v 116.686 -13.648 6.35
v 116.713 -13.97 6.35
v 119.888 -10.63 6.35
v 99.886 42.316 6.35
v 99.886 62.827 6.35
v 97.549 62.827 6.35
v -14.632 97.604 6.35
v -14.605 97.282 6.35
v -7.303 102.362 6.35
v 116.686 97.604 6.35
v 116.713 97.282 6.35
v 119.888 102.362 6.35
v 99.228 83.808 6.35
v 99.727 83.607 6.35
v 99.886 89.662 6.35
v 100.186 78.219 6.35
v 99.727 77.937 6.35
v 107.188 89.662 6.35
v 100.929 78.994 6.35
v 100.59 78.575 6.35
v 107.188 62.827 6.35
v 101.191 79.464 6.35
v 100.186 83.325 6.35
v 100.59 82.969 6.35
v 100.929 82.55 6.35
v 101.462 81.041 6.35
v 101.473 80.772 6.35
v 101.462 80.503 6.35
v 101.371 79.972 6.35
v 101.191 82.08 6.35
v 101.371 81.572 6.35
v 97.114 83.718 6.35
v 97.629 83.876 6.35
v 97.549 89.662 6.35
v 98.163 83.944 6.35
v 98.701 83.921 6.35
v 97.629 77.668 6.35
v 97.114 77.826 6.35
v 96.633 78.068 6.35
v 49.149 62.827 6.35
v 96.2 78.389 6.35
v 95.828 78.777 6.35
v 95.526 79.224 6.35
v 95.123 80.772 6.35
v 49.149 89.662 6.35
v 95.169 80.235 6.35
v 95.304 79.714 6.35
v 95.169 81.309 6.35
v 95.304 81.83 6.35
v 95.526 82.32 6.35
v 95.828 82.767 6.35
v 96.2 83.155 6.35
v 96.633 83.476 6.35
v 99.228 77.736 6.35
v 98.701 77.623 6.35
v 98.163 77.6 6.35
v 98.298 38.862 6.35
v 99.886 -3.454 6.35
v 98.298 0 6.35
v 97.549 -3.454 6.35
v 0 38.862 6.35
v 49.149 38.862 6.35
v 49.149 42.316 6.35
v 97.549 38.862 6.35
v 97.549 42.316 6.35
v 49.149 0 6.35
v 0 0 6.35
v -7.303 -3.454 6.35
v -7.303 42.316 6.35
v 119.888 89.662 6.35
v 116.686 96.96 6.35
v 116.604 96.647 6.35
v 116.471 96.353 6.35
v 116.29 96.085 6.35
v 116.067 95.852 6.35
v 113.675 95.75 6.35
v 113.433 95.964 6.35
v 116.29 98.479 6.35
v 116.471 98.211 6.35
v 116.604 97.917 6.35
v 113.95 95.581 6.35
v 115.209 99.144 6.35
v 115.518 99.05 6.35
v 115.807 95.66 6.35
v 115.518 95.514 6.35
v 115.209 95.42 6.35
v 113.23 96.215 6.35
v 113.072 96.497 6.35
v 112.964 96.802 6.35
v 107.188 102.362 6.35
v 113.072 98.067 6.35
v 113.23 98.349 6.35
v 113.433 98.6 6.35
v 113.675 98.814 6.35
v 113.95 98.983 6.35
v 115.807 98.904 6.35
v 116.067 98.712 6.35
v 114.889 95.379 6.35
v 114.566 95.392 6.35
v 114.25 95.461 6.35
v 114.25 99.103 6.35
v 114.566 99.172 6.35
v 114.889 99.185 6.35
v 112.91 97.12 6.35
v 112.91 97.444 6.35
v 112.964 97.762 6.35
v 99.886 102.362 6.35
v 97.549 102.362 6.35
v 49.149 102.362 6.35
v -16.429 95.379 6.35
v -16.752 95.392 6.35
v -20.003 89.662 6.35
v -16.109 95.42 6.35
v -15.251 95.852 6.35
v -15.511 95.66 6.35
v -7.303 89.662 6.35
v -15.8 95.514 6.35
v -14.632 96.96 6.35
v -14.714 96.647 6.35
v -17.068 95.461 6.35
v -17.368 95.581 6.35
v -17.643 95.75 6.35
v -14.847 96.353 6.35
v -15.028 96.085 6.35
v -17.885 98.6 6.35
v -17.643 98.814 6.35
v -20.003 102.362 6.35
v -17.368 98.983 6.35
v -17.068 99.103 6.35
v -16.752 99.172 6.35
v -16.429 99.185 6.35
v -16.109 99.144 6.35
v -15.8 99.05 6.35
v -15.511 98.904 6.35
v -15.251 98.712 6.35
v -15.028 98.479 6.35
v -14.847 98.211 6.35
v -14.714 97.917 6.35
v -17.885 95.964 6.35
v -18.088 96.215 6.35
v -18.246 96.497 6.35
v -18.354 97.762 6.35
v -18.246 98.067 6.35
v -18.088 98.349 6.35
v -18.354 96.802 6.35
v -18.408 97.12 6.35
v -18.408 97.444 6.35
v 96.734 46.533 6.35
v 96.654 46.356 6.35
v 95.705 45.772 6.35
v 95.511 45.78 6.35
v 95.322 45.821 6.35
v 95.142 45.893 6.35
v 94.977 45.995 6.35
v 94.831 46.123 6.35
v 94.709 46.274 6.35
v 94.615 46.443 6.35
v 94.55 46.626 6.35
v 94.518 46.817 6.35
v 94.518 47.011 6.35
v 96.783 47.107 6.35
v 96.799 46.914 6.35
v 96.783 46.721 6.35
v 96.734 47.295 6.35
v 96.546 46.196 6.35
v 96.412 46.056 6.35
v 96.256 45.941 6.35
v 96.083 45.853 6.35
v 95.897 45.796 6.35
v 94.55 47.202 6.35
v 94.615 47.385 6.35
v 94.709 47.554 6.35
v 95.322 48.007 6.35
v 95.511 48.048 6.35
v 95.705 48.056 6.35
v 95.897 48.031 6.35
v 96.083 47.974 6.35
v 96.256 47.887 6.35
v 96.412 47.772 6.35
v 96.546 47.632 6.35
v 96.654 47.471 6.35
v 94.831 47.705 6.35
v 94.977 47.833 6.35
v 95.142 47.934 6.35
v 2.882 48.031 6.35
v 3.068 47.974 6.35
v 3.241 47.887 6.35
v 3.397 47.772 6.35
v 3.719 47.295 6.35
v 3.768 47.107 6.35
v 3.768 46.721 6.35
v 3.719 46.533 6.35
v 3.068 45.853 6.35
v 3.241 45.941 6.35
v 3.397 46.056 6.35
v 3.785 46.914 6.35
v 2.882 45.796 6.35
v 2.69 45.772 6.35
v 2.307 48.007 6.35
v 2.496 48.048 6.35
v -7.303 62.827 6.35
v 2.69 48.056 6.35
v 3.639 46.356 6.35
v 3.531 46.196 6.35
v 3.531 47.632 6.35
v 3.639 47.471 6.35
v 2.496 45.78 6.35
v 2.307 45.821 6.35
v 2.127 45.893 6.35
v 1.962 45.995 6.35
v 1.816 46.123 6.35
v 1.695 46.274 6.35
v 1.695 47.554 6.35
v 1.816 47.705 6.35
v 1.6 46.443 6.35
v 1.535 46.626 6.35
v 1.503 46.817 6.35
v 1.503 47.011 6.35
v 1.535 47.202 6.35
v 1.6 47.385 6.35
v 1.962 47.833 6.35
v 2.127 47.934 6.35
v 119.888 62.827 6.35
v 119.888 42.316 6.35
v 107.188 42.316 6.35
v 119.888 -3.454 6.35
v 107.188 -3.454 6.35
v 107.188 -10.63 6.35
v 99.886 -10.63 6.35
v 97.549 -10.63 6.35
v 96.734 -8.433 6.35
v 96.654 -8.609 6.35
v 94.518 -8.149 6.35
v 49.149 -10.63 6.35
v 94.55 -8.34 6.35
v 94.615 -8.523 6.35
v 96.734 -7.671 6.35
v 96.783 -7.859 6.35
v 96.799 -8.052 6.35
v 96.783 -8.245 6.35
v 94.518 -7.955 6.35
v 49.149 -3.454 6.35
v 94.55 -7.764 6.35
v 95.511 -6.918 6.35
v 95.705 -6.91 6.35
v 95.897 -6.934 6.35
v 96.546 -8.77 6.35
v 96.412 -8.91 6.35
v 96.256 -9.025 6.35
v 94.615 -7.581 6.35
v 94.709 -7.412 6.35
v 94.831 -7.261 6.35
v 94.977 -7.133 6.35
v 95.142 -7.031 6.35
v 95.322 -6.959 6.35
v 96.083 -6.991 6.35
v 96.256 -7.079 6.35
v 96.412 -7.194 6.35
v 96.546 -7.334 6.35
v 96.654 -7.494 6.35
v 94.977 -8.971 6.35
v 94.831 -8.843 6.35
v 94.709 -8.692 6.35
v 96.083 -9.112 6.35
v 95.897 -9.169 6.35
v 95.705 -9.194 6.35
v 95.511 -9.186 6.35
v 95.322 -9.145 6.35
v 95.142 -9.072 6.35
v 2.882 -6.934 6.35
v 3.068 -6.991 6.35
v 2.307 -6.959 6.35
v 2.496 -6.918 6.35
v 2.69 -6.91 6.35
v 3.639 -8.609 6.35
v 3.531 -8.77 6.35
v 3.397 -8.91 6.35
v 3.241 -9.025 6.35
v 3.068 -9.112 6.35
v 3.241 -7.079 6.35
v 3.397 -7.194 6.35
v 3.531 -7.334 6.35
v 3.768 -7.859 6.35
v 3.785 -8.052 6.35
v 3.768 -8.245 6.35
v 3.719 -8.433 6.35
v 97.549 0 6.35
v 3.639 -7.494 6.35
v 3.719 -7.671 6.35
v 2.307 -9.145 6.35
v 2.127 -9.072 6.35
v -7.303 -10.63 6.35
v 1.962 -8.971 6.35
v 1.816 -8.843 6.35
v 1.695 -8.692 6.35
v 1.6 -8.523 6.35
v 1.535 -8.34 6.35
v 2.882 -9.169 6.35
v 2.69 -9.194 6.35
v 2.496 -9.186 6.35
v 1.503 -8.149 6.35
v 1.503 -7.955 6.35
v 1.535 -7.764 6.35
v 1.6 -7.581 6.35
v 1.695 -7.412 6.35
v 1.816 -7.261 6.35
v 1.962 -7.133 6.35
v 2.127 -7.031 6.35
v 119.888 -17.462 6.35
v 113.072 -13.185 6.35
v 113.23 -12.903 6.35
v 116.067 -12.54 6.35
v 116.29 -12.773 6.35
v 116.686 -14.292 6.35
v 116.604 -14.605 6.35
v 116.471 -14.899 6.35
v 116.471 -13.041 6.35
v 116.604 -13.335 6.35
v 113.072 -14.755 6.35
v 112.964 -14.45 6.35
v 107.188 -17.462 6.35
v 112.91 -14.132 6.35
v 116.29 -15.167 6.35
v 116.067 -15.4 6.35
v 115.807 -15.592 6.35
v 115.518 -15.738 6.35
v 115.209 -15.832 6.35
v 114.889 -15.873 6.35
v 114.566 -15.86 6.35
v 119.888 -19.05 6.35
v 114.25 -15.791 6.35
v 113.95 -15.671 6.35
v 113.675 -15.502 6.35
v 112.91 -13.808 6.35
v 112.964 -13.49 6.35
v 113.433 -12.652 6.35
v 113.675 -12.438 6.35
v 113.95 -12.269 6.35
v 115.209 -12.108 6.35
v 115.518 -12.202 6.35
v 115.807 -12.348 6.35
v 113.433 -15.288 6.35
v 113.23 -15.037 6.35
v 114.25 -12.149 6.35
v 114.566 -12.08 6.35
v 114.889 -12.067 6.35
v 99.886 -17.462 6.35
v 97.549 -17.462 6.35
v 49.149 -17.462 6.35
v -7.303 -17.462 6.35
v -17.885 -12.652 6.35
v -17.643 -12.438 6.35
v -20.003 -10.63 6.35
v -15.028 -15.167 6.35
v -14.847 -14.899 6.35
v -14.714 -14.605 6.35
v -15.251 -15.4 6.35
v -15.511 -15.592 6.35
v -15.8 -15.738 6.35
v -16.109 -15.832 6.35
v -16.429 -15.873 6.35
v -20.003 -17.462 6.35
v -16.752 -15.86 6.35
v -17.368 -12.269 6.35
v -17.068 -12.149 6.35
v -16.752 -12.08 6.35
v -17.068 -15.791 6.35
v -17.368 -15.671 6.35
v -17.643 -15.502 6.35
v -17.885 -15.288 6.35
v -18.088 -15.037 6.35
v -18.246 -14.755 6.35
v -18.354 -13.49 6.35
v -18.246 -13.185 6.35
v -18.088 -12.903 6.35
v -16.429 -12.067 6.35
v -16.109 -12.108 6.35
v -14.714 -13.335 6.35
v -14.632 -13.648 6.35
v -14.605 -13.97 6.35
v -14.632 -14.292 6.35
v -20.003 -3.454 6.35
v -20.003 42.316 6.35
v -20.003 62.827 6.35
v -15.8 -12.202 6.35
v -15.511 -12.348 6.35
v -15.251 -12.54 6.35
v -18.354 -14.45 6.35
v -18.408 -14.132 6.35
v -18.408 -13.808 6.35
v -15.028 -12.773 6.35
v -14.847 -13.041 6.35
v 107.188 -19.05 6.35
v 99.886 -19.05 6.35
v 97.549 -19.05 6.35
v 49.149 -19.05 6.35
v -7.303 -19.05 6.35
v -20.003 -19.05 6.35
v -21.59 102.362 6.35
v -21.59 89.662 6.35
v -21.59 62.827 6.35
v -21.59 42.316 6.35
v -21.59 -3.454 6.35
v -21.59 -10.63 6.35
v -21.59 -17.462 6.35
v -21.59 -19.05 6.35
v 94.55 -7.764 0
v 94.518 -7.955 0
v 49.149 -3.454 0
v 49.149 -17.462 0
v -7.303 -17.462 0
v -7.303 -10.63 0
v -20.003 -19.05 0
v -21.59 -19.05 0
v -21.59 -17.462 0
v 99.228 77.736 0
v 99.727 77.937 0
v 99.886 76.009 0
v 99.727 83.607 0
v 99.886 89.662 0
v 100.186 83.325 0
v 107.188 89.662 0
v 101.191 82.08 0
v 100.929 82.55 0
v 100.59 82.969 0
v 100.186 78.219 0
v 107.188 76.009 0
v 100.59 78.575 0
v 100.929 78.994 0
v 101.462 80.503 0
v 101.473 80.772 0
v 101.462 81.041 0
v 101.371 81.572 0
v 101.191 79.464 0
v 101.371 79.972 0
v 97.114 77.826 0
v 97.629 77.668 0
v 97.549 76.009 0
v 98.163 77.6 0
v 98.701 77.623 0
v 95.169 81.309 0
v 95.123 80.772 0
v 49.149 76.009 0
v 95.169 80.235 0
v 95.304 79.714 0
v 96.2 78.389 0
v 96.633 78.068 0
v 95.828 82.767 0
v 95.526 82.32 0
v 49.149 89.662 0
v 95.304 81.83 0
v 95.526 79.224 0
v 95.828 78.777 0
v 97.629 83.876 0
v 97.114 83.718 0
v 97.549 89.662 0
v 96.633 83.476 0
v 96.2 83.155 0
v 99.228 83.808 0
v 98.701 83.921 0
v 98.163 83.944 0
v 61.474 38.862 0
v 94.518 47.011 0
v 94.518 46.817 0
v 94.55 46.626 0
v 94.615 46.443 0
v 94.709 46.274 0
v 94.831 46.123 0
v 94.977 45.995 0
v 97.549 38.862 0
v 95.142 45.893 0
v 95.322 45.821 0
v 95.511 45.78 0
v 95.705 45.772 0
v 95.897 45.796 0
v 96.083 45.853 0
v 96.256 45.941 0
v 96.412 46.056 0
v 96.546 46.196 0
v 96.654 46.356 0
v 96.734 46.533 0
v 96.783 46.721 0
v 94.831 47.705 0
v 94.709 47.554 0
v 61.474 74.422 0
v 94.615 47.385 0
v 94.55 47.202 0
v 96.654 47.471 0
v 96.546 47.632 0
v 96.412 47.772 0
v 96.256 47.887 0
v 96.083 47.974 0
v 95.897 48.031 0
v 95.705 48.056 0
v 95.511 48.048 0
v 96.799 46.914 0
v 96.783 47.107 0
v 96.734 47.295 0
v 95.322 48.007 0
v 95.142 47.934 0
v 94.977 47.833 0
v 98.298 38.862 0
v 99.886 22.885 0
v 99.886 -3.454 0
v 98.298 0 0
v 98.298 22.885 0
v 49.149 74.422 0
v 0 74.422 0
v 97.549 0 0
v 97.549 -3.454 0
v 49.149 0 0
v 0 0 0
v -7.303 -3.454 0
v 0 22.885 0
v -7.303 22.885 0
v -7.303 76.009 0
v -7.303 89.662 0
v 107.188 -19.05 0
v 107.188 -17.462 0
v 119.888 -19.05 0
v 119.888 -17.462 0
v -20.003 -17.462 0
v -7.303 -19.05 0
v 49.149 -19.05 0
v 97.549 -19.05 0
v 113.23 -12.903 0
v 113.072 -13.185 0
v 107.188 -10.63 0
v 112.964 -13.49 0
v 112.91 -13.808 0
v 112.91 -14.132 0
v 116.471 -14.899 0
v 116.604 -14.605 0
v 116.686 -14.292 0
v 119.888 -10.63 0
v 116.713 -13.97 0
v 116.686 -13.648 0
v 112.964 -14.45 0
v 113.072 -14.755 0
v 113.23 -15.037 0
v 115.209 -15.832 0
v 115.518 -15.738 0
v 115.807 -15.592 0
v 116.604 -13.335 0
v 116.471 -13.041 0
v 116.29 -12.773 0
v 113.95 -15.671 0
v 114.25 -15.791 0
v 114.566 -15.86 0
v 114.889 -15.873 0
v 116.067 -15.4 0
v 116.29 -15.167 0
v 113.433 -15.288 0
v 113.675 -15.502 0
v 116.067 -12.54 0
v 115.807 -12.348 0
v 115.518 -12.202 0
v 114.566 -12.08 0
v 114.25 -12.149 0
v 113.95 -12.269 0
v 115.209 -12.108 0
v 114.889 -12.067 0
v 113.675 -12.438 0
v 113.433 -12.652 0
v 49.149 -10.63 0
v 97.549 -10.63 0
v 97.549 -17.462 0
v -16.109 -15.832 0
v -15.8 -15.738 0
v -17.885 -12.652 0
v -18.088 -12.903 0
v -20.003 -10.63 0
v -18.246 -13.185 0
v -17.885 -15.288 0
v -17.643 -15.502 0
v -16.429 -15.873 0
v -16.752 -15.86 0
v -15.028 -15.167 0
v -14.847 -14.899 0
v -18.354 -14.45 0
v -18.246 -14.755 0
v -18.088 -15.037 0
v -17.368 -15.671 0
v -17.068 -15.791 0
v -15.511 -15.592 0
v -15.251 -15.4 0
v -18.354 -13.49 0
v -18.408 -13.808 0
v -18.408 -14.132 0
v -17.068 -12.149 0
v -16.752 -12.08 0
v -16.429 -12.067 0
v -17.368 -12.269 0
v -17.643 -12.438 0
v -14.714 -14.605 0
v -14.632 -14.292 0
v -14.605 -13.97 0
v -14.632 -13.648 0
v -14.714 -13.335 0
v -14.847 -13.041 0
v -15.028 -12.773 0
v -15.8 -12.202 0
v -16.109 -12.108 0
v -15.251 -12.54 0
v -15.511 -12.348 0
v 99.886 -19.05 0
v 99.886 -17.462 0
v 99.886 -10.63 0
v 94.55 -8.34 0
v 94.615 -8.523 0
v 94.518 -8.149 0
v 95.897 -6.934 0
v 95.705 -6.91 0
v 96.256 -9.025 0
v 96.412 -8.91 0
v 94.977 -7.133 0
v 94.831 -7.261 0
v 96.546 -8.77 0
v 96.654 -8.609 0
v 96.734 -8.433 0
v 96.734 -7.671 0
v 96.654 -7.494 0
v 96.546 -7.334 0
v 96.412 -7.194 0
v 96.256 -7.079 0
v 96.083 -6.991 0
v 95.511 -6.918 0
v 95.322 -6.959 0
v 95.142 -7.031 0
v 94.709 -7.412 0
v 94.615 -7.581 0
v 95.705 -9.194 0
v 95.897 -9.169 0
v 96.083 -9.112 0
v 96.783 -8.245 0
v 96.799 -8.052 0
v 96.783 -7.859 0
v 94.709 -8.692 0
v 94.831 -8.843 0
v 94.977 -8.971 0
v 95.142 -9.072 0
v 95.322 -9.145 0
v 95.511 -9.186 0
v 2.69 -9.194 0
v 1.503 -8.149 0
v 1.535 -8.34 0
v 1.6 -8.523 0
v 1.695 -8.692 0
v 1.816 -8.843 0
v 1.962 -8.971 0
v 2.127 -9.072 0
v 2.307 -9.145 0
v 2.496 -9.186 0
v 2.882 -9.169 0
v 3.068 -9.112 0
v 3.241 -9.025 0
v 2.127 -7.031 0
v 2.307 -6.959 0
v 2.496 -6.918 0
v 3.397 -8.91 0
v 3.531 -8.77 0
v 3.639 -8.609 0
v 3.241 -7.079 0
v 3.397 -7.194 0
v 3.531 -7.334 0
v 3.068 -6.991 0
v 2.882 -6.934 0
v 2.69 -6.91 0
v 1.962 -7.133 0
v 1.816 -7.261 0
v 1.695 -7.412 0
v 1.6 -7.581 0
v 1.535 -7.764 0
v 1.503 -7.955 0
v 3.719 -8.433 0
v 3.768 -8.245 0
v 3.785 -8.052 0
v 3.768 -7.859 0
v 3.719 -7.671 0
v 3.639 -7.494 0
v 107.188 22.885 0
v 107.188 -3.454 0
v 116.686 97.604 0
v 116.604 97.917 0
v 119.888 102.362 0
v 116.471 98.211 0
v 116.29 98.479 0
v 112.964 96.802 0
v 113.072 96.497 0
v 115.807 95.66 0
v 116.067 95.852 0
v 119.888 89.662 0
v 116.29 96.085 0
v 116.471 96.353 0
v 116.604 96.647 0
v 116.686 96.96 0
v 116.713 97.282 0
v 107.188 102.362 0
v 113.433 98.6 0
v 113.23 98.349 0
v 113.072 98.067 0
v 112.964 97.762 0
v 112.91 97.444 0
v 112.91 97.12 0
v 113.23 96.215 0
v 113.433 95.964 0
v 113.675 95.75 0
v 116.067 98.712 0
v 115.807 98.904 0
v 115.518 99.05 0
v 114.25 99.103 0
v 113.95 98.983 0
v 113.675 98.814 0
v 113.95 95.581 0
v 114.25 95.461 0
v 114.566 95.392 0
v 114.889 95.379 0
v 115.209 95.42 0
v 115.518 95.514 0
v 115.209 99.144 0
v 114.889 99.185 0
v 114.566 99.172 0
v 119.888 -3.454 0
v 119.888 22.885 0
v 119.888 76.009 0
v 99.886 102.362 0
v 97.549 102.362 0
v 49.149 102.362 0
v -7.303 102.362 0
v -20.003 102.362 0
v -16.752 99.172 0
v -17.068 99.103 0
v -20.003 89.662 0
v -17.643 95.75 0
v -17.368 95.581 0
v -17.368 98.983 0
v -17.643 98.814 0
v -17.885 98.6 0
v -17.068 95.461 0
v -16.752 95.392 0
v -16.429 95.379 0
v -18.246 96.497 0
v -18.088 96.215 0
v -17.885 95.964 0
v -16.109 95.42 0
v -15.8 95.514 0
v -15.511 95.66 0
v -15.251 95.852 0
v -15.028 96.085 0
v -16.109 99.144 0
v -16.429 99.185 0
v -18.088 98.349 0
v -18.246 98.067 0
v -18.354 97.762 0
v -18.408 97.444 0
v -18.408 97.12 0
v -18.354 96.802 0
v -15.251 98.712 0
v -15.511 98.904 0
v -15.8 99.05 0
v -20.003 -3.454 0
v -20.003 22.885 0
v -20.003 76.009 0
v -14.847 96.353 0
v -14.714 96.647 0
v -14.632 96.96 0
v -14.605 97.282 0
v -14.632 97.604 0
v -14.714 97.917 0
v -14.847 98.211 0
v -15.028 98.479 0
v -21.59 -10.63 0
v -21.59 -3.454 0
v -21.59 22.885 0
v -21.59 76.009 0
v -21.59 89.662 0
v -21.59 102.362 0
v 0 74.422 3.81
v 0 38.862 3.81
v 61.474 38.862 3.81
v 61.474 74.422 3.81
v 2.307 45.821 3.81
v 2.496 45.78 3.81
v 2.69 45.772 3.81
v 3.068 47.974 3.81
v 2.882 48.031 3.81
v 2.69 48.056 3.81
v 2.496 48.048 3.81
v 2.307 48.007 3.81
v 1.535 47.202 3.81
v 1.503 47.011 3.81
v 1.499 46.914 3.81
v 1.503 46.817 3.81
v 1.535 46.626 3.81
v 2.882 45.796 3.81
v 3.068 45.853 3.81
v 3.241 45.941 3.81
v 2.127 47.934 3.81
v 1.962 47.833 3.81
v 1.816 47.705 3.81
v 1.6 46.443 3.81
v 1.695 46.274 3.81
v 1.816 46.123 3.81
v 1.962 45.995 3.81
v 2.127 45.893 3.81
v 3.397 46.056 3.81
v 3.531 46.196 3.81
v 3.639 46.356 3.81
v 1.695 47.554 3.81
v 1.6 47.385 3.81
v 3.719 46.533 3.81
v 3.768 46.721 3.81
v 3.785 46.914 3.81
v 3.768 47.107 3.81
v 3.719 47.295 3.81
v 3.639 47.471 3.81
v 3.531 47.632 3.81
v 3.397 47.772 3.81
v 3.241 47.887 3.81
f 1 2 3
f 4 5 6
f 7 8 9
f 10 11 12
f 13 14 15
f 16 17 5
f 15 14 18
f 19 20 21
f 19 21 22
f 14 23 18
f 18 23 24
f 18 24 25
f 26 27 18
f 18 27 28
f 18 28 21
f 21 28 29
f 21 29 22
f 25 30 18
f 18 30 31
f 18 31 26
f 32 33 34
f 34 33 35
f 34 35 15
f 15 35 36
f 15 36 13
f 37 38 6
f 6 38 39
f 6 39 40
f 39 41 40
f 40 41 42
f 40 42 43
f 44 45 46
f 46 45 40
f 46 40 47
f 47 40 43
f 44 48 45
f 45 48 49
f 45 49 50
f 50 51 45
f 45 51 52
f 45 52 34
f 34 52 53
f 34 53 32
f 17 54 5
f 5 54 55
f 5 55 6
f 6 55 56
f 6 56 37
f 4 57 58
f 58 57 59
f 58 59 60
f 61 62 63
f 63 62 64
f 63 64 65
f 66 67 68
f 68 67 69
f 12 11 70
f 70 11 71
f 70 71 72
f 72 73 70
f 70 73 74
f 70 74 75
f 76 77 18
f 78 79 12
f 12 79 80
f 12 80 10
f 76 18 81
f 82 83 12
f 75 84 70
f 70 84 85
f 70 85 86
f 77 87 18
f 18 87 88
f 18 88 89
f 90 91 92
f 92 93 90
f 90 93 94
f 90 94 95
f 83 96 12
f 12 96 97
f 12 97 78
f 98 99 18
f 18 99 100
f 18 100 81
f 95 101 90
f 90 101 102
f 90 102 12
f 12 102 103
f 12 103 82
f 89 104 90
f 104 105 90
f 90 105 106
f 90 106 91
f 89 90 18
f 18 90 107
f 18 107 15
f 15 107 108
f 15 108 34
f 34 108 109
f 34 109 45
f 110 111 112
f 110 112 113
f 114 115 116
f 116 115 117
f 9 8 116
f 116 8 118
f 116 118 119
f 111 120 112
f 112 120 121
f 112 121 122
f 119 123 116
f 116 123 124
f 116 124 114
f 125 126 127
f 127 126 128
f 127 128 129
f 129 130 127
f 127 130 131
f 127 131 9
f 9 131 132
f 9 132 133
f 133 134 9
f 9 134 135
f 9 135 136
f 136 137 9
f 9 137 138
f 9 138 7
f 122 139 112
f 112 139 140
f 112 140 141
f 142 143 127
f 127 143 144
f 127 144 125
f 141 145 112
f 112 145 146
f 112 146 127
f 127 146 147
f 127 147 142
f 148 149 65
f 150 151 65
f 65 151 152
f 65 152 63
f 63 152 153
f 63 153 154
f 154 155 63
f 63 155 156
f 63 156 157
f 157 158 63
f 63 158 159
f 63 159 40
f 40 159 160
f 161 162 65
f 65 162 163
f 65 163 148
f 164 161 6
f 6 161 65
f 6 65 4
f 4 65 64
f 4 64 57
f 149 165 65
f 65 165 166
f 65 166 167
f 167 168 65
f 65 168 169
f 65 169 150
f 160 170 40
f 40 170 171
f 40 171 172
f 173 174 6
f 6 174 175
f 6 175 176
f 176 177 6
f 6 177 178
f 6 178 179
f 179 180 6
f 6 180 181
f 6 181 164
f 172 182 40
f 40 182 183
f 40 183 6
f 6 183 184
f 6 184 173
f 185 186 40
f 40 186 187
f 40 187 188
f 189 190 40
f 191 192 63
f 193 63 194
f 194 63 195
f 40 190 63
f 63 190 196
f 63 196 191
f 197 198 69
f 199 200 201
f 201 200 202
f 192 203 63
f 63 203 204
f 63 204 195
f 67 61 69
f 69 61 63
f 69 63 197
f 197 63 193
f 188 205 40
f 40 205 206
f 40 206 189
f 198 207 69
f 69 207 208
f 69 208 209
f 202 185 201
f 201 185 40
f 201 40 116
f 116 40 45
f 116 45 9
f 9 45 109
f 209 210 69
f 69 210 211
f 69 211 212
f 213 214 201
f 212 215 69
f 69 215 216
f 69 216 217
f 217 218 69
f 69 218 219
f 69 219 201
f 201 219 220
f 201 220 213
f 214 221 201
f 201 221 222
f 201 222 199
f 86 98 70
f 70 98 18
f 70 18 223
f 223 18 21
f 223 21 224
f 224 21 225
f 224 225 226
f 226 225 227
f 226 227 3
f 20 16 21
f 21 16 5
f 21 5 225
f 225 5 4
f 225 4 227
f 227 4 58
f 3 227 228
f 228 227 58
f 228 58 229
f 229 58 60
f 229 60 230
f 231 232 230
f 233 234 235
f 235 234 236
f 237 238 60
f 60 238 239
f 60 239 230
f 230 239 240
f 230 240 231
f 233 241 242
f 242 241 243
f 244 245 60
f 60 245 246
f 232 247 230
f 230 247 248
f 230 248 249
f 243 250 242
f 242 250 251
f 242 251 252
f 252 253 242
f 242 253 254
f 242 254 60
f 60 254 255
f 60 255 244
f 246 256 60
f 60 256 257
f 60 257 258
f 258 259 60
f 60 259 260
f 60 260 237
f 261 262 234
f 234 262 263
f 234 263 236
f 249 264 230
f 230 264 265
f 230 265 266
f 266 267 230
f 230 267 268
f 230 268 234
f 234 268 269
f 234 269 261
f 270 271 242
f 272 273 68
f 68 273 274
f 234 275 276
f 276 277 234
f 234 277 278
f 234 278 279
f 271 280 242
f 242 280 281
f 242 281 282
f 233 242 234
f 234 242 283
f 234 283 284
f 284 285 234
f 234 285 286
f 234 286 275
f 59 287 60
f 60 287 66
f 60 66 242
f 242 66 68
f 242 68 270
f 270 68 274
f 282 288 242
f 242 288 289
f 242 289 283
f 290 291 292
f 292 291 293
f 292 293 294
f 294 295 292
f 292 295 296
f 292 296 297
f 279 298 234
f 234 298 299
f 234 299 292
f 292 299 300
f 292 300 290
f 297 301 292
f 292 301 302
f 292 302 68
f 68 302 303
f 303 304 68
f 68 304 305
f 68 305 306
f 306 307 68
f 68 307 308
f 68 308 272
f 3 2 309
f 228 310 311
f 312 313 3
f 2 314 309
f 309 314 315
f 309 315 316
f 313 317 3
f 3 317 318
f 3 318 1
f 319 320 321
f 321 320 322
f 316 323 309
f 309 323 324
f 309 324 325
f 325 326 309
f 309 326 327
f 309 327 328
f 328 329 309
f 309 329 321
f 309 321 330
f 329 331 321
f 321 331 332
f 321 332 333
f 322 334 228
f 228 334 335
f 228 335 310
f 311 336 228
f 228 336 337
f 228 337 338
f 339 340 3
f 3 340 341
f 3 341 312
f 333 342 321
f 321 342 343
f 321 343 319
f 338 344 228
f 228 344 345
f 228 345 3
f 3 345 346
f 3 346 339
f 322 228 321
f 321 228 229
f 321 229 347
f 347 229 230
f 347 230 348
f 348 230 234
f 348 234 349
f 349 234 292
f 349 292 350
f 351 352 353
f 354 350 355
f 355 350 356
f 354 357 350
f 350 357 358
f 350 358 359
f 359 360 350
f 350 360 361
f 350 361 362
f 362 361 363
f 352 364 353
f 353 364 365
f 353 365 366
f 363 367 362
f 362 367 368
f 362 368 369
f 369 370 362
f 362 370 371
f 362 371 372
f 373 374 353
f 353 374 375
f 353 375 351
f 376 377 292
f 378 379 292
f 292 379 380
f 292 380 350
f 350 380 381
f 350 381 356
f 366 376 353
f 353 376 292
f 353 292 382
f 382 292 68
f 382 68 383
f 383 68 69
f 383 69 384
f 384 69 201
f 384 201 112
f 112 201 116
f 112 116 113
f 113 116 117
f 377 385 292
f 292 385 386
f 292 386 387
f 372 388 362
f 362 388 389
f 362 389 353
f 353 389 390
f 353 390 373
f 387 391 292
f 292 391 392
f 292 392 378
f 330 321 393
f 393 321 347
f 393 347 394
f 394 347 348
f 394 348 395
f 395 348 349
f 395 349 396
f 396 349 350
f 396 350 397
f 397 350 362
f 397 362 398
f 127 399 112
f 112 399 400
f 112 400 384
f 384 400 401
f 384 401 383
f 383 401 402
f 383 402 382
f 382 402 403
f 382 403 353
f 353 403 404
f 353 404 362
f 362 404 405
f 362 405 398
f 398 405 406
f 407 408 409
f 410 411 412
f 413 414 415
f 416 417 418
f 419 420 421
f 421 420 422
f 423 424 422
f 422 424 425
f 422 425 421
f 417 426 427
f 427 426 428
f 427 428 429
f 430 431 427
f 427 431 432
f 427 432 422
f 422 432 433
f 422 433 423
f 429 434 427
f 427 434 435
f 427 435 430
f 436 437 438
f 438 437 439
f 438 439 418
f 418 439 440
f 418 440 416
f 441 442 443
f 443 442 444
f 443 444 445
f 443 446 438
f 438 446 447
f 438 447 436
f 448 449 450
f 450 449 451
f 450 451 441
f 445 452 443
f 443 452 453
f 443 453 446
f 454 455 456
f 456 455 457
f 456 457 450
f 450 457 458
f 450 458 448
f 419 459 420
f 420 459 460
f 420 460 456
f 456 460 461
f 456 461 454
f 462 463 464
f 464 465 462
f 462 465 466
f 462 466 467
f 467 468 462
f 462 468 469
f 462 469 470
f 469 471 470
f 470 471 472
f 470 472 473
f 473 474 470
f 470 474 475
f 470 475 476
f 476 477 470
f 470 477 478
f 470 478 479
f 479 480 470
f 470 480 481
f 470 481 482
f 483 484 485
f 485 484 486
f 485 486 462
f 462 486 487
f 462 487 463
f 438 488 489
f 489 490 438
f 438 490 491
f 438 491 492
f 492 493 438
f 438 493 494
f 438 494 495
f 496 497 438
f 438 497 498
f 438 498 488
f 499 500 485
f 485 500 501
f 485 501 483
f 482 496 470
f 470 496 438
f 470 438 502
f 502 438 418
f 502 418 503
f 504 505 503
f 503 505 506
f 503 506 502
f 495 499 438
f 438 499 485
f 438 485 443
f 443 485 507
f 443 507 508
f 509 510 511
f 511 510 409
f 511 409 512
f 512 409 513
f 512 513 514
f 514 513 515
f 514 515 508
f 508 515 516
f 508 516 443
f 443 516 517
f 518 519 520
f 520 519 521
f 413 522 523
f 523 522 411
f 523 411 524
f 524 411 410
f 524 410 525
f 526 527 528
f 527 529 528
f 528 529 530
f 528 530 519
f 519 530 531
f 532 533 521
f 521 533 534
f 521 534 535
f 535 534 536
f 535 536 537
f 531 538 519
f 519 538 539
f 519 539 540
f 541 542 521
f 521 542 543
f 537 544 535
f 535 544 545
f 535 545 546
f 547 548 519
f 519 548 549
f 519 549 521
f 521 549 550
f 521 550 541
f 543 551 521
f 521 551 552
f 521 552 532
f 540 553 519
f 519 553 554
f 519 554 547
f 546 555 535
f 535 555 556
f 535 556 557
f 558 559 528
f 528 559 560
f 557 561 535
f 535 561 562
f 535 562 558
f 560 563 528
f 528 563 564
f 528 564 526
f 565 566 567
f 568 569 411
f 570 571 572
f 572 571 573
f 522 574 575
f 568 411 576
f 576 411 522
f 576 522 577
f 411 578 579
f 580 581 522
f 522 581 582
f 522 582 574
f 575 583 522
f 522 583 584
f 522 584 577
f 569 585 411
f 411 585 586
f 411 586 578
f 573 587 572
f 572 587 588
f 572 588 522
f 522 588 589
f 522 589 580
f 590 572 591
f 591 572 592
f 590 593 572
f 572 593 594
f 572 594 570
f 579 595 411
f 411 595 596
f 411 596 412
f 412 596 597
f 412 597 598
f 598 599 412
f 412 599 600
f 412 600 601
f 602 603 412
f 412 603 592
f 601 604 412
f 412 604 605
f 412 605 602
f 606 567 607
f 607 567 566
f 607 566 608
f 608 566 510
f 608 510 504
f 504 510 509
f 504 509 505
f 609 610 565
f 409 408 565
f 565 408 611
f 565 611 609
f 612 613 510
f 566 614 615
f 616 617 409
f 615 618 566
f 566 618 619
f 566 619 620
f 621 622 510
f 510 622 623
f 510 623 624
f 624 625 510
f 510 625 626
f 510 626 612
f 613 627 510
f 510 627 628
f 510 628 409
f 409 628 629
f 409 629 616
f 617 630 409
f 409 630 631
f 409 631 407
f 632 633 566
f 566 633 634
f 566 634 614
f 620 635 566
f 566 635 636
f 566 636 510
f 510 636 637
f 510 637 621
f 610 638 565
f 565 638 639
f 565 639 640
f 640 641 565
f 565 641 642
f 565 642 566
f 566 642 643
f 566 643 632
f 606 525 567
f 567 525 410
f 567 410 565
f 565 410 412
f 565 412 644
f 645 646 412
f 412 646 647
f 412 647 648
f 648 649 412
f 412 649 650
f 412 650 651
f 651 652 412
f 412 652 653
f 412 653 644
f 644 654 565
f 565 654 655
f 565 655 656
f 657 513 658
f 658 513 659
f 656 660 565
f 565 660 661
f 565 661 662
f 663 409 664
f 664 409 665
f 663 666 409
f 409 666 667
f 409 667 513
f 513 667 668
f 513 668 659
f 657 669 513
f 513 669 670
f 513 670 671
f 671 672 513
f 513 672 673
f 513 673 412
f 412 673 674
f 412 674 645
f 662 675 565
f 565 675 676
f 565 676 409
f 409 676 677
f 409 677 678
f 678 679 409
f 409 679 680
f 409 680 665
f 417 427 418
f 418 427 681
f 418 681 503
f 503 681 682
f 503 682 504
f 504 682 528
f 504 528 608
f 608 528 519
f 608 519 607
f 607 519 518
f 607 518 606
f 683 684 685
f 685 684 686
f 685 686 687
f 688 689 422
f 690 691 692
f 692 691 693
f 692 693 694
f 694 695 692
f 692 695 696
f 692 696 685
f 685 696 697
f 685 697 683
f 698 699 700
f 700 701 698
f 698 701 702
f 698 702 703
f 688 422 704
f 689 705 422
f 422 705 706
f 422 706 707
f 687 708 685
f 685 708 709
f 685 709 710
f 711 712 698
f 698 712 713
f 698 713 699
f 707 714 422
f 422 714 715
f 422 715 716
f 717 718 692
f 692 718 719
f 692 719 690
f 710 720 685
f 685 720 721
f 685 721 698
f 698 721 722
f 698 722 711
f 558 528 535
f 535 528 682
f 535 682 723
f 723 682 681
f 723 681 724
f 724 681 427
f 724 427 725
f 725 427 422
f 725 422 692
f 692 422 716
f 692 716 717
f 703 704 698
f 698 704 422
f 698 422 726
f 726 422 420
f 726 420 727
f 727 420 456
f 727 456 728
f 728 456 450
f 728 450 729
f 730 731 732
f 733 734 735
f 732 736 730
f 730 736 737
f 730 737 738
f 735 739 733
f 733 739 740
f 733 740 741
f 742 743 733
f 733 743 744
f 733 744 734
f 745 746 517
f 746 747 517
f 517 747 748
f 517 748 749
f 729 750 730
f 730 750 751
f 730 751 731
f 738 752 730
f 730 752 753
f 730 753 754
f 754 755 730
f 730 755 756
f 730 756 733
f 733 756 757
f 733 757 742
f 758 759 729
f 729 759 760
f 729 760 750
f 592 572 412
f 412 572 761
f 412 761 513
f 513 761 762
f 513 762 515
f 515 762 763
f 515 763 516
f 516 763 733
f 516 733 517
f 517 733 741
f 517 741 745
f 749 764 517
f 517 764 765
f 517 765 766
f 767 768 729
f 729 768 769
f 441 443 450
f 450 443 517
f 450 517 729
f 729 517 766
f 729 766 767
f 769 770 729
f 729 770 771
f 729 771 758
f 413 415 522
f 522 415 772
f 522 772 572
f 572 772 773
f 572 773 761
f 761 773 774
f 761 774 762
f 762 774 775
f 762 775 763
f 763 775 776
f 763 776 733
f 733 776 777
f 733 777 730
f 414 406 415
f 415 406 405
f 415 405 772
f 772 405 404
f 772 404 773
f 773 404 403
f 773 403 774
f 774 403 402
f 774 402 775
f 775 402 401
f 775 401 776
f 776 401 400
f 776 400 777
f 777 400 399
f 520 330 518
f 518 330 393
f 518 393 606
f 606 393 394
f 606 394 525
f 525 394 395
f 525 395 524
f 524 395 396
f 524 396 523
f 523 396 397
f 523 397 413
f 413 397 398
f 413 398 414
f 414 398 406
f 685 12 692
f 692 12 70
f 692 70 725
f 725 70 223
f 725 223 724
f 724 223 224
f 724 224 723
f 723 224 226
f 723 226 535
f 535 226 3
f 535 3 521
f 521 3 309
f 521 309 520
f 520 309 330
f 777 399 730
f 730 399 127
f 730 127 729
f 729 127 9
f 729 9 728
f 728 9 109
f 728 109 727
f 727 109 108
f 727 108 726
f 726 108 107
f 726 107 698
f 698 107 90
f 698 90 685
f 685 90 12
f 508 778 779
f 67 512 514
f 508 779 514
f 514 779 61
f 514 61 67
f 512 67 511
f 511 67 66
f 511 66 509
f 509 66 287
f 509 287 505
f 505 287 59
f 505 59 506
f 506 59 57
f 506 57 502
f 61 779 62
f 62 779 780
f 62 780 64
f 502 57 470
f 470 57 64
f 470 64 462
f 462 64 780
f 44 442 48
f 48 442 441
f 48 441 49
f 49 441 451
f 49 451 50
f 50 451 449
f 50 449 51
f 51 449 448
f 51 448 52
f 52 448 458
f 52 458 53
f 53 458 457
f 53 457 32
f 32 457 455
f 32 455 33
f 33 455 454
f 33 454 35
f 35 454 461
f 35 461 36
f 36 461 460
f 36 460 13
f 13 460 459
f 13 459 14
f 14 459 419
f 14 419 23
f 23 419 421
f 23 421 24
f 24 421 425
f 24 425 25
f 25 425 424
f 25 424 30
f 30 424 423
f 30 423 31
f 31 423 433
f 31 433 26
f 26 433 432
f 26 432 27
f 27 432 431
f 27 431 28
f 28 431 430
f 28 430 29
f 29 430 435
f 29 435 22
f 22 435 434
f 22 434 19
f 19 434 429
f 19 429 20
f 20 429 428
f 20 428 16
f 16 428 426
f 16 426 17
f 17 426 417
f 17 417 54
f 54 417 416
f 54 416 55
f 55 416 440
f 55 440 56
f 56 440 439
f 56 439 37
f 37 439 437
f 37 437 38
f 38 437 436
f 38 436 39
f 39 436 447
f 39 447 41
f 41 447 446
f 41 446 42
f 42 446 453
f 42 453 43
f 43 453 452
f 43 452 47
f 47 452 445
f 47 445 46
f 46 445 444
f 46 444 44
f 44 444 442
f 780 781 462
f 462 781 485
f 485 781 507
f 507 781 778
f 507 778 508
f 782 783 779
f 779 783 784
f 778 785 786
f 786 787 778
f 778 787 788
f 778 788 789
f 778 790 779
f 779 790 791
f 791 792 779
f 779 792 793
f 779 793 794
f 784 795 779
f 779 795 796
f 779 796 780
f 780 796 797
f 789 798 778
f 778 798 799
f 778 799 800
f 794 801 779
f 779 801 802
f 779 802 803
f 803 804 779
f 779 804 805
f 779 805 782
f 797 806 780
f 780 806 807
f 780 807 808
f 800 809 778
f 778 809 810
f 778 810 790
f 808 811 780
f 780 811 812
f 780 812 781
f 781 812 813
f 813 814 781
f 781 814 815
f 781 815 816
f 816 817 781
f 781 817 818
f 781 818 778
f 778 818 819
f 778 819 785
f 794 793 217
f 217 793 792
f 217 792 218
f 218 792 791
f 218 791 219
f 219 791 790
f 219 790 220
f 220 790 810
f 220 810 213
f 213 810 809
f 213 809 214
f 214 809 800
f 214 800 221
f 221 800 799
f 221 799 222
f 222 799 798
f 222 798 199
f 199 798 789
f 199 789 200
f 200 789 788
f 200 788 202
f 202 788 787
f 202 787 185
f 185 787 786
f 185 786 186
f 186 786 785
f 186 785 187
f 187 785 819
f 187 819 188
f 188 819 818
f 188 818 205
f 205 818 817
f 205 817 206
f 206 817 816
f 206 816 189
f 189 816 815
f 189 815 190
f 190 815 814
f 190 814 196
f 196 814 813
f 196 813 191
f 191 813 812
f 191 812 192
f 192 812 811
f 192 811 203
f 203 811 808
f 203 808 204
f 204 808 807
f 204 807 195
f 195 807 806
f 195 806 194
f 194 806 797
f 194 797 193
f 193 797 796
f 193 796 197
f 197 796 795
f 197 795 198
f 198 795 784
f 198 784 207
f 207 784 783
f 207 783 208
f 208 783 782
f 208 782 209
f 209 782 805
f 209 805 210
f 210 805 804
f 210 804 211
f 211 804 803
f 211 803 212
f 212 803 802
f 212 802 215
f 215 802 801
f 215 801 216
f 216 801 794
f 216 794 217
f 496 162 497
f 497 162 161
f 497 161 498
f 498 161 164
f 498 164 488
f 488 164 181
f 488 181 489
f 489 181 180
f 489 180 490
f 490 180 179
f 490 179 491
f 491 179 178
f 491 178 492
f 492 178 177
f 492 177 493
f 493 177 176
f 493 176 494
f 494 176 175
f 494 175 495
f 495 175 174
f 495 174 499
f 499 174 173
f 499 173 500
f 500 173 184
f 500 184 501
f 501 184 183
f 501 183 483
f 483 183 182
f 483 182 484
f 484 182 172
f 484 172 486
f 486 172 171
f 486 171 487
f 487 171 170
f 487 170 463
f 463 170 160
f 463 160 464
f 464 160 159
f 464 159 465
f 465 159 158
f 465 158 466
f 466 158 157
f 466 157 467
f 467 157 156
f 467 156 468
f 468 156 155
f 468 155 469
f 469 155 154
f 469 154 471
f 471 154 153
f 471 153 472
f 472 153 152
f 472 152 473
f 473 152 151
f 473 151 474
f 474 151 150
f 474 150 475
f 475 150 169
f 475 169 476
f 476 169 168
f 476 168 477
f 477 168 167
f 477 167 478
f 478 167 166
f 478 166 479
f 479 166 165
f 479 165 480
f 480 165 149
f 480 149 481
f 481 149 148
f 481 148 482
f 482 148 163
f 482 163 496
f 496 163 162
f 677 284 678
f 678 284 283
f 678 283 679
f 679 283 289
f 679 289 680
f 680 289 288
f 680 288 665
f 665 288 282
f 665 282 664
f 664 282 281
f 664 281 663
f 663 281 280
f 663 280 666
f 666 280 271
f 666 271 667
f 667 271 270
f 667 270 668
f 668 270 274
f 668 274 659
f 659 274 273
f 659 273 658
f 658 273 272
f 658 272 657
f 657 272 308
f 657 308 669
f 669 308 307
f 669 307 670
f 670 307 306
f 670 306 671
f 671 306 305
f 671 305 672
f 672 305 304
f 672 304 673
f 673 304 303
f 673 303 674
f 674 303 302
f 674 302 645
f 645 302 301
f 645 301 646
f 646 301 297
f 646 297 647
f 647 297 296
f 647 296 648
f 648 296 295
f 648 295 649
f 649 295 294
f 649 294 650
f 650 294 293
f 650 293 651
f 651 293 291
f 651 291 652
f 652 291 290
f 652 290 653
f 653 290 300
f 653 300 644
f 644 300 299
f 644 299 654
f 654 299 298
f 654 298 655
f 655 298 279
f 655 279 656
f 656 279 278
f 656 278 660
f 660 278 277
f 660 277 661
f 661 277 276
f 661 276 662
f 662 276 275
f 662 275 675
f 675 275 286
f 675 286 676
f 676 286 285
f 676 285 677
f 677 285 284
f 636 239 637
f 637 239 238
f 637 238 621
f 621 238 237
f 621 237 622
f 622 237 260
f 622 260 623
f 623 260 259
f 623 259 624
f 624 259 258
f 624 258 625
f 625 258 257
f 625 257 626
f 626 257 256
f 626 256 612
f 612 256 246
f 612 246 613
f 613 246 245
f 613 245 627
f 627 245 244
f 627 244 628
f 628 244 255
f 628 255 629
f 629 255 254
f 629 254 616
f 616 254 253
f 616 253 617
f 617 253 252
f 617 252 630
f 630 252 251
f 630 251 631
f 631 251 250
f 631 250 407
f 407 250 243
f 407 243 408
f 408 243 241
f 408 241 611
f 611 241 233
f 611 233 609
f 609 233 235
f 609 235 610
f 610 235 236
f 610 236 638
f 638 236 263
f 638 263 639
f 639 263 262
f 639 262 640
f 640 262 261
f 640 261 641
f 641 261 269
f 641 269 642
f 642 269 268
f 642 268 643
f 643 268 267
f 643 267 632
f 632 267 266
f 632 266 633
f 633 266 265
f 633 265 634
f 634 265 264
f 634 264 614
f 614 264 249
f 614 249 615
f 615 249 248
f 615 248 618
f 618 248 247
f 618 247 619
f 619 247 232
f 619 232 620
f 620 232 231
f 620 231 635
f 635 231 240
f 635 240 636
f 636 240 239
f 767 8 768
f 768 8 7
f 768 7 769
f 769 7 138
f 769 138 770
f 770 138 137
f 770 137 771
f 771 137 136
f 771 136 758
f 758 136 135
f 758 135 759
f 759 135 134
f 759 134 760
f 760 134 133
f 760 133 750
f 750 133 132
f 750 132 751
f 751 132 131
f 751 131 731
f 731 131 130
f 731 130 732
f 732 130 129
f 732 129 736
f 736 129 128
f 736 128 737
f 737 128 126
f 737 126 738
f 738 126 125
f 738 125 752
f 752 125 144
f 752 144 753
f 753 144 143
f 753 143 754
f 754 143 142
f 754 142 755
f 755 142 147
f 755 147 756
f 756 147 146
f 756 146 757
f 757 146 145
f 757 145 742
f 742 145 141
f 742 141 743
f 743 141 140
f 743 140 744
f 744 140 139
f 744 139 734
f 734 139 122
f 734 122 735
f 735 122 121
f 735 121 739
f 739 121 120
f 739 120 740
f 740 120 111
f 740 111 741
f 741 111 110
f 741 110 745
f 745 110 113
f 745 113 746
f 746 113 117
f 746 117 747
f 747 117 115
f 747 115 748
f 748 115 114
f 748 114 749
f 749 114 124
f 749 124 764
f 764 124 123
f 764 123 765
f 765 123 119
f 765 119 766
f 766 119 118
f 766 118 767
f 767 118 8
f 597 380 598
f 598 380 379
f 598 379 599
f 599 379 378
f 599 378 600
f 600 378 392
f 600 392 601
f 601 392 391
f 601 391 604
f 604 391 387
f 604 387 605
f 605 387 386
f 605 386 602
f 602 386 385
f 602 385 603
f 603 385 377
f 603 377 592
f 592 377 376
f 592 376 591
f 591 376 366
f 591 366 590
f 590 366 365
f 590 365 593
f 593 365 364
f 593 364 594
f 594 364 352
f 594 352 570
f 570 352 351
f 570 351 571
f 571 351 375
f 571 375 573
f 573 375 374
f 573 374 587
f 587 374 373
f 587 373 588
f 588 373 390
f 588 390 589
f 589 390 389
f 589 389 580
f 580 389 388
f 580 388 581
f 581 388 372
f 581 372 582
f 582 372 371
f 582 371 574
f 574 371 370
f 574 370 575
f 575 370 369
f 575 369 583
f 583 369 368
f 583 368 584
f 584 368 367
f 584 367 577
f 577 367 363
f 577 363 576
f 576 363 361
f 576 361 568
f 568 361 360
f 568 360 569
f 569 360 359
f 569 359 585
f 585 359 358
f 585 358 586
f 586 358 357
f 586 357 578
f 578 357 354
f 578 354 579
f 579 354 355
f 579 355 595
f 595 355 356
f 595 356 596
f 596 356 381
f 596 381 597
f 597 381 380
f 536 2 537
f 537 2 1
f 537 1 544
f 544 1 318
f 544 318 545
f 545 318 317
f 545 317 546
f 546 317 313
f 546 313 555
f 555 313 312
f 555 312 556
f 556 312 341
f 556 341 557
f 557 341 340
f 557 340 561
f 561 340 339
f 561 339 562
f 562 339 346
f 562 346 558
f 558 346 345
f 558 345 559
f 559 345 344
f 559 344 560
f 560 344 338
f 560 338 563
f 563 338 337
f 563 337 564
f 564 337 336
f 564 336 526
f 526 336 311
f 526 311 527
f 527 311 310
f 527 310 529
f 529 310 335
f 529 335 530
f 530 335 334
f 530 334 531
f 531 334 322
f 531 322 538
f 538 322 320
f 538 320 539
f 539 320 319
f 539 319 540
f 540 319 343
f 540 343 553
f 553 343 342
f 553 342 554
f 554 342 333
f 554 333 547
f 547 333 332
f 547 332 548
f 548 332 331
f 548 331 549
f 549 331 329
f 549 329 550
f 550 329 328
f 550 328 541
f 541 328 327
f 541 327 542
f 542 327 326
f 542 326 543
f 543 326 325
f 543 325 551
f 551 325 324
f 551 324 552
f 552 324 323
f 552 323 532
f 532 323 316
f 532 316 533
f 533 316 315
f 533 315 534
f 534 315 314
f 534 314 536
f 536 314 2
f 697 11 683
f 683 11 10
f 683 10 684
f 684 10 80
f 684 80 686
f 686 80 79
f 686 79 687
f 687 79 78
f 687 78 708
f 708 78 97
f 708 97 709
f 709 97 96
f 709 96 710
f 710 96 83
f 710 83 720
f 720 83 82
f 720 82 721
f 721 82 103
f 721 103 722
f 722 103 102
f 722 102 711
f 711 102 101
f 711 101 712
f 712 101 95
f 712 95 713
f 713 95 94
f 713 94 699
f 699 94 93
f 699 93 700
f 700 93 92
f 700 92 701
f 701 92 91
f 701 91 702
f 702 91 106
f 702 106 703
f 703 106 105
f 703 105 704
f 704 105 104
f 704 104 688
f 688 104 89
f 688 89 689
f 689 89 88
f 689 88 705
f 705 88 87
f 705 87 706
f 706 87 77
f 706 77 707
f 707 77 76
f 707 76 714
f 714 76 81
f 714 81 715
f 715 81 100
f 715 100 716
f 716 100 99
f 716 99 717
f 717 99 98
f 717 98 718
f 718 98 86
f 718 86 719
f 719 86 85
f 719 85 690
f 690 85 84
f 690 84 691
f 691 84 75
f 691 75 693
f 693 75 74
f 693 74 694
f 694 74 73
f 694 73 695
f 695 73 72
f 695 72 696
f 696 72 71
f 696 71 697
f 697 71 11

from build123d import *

# Parameters (mm, degrees)
SKETCH1_W           = 141.478
SKETCH1_H           = 121.412
SKETCH1_R           = 3.175
SKETCH1_W_2         = 98.298
SKETCH1_H_2         = 38.862
BOSS_EXTRUDE1_DEPTH = 6.35
SKETCH2_W           = 61.473578211
SKETCH2_H           = 35.56
CUT_EXTRUDE1_DEPTH  = 3.81
SKETCH3_R           = 1.143
CUT_EXTRUDE2_DEPTH  = 158.770193915
SKETCH4_R           = 1.905
CUT_EXTRUDE3_DEPTH  = 158.770193915


with BuildPart() as part:
    # Sketch1 → Boss-Extrude1 (new body)
    with BuildSketch(Plane.XY):
        with Locations((49.149, 41.656)):
            Rectangle(SKETCH1_W, SKETCH1_H)
        with Locations((98.298, 80.772)):
            Circle(SKETCH1_R, mode=Mode.SUBTRACT)
        with Locations((49.149, 19.431)):
            Rectangle(SKETCH1_W_2, SKETCH1_H_2, mode=Mode.SUBTRACT)
    extrude(amount=BOSS_EXTRUDE1_DEPTH)

    # Sketch2 → Cut-Extrude1 (cut)
    with BuildSketch(Plane(origin=(0, 0, 0), x_dir=(-1, 0, 0), z_dir=(0, 0, -1))):
        with Locations((-30.736789106, 56.642)):
            Rectangle(SKETCH2_W, SKETCH2_H)
    extrude(amount=-CUT_EXTRUDE1_DEPTH, mode=Mode.SUBTRACT)

    # Sketch3 → Cut-Extrude2 (cut, through all)
    with BuildSketch(Plane.XY.offset(6.35)):
        with Locations((2.6416, 46.9138)):
            Circle(SKETCH3_R)
        with Locations((95.6564, 46.9138)):
            Circle(SKETCH3_R)
        with Locations((95.6564, -8.0518)):
            Circle(SKETCH3_R)
        with Locations((2.6416, -8.0518)):
            Circle(SKETCH3_R)
    extrude(amount=-CUT_EXTRUDE2_DEPTH, mode=Mode.SUBTRACT)

    # Sketch4 → Cut-Extrude3 (cut, through all)
    with BuildSketch(Plane.XY.offset(6.35)):
        with Locations((-16.51, 97.282)):
            Circle(SKETCH4_R)
        with Locations((-16.51, -13.97)):
            Circle(SKETCH4_R)
        with Locations((114.808, -13.97)):
            Circle(SKETCH4_R)
        with Locations((114.808, 97.282)):
            Circle(SKETCH4_R)
    extrude(amount=-CUT_EXTRUDE3_DEPTH, mode=Mode.SUBTRACT)


solid = part.part
